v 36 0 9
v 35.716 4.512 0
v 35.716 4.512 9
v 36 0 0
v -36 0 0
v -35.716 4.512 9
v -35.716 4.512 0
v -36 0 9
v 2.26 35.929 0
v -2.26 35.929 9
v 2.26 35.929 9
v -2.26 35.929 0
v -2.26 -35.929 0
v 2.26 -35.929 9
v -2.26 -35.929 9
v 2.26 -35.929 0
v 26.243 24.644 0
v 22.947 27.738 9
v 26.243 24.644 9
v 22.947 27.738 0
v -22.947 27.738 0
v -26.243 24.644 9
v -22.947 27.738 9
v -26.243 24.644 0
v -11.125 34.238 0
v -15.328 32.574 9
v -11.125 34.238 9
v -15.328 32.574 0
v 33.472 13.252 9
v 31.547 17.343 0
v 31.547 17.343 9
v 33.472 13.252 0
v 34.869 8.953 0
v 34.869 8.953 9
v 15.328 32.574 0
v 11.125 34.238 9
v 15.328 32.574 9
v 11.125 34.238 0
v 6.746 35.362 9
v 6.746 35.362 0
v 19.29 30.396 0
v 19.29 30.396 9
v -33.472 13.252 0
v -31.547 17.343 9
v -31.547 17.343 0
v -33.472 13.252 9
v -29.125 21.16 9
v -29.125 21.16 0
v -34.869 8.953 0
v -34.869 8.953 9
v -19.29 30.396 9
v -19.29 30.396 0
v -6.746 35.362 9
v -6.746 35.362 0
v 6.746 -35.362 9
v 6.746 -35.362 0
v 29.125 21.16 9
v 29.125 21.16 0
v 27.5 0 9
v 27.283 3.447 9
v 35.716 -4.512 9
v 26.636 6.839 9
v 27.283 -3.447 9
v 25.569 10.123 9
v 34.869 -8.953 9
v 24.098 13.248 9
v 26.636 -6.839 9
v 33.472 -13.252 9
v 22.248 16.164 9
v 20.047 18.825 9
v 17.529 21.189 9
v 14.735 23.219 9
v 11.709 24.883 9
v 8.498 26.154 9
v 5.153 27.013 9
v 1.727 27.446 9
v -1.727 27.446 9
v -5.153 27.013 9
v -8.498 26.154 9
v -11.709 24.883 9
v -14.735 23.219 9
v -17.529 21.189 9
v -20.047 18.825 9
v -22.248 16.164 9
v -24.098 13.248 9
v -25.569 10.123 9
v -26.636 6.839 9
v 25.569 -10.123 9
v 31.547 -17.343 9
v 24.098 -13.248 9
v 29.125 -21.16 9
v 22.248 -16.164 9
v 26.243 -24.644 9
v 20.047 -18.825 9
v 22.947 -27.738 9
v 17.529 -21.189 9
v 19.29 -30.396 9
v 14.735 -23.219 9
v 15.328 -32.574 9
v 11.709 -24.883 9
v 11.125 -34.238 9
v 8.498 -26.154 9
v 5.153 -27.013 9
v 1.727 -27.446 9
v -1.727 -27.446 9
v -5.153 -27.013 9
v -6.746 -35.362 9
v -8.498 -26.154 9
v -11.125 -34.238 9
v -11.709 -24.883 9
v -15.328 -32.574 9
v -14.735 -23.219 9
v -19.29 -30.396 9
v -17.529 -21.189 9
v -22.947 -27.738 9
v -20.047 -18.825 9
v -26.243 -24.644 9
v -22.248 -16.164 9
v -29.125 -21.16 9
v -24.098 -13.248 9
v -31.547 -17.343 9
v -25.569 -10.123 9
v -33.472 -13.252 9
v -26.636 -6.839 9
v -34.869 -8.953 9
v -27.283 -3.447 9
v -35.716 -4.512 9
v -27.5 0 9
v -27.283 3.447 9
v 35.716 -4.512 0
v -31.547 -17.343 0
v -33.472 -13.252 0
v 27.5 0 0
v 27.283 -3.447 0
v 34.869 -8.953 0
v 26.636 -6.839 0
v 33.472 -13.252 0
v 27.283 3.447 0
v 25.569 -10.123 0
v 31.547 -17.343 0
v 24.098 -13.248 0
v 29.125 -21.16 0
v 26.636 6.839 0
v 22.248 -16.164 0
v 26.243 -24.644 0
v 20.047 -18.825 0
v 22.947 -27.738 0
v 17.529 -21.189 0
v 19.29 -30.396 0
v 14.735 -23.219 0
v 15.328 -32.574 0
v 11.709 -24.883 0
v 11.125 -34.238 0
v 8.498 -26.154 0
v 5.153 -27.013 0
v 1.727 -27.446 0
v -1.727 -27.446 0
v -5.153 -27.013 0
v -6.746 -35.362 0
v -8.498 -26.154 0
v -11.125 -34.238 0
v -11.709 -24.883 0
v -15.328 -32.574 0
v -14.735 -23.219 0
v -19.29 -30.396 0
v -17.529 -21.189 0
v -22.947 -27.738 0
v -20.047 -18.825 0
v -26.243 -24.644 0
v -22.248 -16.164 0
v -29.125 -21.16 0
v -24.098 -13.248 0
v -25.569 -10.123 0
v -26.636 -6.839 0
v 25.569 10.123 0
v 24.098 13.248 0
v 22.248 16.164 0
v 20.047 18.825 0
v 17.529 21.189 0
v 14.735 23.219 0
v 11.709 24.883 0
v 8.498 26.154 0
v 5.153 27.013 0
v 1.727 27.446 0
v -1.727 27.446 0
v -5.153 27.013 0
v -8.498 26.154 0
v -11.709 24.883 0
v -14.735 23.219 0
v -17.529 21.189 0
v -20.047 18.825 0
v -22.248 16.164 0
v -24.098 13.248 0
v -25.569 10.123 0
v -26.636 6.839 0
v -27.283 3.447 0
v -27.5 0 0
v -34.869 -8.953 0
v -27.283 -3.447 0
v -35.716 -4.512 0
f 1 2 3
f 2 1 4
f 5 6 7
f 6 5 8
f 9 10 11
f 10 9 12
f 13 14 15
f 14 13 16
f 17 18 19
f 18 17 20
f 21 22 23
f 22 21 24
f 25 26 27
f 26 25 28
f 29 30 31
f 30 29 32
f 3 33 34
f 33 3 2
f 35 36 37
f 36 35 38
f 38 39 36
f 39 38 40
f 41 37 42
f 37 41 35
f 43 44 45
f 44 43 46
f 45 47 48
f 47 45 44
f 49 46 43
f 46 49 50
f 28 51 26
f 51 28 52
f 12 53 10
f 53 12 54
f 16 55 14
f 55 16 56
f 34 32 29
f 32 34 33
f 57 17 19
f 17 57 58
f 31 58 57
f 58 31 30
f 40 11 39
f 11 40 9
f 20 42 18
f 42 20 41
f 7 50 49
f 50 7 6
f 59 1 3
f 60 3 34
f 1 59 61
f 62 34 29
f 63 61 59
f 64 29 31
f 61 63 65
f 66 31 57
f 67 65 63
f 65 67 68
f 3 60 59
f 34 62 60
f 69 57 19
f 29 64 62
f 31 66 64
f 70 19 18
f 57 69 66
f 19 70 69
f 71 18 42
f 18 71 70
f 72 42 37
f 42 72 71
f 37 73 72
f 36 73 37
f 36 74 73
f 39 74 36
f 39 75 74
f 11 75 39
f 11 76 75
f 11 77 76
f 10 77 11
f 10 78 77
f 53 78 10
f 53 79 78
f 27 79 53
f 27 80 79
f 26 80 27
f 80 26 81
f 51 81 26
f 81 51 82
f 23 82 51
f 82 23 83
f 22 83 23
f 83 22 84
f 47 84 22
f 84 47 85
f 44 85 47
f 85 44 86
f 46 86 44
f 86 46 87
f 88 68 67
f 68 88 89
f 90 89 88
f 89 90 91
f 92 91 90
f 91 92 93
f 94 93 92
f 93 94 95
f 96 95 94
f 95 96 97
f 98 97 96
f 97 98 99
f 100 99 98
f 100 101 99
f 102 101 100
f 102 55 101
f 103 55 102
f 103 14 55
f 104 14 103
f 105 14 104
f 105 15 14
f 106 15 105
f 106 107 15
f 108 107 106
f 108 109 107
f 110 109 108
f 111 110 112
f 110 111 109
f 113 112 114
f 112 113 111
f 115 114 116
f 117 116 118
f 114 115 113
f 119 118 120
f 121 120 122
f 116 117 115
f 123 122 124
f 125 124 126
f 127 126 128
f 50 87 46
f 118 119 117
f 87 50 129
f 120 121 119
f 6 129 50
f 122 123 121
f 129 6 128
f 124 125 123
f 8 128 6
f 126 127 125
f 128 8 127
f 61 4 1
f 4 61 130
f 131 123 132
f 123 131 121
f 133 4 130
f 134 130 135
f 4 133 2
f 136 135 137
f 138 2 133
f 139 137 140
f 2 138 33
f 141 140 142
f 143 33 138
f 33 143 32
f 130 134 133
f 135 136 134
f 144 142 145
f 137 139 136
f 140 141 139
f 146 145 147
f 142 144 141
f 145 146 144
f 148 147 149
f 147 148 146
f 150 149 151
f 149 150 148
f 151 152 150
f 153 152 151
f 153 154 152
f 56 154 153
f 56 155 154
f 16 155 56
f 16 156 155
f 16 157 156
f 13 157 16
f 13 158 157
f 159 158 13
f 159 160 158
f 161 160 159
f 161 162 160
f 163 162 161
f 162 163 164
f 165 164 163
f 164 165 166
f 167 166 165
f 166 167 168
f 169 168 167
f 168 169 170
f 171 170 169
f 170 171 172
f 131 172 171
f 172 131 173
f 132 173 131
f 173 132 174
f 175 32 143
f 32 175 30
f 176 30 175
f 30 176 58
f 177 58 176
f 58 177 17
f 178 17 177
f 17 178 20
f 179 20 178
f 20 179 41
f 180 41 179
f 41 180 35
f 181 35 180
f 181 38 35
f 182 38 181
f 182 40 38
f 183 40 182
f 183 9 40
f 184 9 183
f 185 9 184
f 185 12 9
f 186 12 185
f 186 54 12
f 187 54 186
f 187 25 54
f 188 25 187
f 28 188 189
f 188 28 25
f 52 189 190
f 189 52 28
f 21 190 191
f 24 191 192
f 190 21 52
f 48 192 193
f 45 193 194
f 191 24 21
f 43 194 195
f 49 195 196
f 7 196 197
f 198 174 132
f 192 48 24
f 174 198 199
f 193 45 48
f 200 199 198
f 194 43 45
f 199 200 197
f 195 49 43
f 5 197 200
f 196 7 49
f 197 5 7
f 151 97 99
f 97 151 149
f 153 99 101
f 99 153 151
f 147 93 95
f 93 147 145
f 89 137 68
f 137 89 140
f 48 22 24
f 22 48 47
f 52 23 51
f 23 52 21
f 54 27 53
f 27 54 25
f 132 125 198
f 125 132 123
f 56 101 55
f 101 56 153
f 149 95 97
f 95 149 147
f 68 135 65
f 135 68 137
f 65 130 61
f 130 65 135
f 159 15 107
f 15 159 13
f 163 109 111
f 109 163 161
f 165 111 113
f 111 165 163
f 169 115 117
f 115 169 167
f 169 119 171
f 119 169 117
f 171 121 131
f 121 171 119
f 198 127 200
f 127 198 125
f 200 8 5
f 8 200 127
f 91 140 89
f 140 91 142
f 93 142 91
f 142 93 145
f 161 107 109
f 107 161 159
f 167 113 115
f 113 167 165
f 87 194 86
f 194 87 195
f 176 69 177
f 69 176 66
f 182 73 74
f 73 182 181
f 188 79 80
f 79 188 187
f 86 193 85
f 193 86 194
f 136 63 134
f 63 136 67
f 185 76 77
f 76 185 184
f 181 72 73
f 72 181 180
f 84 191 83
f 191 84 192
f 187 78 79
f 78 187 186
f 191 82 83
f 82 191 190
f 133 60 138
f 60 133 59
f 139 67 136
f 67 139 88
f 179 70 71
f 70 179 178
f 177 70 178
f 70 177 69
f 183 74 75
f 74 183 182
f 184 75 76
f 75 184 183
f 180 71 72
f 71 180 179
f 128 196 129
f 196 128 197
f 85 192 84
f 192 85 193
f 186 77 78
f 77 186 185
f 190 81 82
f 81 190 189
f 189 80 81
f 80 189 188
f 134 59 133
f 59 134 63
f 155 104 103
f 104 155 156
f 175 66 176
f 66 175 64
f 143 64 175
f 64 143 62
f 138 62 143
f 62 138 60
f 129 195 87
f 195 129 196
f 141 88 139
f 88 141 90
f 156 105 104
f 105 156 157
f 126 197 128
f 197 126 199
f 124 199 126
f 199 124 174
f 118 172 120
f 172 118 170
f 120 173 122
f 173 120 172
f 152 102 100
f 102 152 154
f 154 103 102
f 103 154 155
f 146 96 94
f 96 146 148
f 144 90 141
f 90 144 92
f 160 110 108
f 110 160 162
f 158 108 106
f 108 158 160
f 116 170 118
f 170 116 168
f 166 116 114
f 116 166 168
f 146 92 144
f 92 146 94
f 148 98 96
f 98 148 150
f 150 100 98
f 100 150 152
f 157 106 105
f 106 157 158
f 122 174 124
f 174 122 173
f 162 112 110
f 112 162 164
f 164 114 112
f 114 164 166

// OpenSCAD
$fn = 50;


difference() {
	union() {
		translate(v = [0, 0, 0]) {
			rotate(a = [0, 0, 0]) {
				cylinder(h = 9, r = 36.0000000000);
			}
		}
	}
	union() {
		translate(v = [0, 0, 0]) {
			rotate(a = [0, 0, 0]) {
				cylinder(h = 9, r = 27.5000000000);
			}
		}
	}
}
